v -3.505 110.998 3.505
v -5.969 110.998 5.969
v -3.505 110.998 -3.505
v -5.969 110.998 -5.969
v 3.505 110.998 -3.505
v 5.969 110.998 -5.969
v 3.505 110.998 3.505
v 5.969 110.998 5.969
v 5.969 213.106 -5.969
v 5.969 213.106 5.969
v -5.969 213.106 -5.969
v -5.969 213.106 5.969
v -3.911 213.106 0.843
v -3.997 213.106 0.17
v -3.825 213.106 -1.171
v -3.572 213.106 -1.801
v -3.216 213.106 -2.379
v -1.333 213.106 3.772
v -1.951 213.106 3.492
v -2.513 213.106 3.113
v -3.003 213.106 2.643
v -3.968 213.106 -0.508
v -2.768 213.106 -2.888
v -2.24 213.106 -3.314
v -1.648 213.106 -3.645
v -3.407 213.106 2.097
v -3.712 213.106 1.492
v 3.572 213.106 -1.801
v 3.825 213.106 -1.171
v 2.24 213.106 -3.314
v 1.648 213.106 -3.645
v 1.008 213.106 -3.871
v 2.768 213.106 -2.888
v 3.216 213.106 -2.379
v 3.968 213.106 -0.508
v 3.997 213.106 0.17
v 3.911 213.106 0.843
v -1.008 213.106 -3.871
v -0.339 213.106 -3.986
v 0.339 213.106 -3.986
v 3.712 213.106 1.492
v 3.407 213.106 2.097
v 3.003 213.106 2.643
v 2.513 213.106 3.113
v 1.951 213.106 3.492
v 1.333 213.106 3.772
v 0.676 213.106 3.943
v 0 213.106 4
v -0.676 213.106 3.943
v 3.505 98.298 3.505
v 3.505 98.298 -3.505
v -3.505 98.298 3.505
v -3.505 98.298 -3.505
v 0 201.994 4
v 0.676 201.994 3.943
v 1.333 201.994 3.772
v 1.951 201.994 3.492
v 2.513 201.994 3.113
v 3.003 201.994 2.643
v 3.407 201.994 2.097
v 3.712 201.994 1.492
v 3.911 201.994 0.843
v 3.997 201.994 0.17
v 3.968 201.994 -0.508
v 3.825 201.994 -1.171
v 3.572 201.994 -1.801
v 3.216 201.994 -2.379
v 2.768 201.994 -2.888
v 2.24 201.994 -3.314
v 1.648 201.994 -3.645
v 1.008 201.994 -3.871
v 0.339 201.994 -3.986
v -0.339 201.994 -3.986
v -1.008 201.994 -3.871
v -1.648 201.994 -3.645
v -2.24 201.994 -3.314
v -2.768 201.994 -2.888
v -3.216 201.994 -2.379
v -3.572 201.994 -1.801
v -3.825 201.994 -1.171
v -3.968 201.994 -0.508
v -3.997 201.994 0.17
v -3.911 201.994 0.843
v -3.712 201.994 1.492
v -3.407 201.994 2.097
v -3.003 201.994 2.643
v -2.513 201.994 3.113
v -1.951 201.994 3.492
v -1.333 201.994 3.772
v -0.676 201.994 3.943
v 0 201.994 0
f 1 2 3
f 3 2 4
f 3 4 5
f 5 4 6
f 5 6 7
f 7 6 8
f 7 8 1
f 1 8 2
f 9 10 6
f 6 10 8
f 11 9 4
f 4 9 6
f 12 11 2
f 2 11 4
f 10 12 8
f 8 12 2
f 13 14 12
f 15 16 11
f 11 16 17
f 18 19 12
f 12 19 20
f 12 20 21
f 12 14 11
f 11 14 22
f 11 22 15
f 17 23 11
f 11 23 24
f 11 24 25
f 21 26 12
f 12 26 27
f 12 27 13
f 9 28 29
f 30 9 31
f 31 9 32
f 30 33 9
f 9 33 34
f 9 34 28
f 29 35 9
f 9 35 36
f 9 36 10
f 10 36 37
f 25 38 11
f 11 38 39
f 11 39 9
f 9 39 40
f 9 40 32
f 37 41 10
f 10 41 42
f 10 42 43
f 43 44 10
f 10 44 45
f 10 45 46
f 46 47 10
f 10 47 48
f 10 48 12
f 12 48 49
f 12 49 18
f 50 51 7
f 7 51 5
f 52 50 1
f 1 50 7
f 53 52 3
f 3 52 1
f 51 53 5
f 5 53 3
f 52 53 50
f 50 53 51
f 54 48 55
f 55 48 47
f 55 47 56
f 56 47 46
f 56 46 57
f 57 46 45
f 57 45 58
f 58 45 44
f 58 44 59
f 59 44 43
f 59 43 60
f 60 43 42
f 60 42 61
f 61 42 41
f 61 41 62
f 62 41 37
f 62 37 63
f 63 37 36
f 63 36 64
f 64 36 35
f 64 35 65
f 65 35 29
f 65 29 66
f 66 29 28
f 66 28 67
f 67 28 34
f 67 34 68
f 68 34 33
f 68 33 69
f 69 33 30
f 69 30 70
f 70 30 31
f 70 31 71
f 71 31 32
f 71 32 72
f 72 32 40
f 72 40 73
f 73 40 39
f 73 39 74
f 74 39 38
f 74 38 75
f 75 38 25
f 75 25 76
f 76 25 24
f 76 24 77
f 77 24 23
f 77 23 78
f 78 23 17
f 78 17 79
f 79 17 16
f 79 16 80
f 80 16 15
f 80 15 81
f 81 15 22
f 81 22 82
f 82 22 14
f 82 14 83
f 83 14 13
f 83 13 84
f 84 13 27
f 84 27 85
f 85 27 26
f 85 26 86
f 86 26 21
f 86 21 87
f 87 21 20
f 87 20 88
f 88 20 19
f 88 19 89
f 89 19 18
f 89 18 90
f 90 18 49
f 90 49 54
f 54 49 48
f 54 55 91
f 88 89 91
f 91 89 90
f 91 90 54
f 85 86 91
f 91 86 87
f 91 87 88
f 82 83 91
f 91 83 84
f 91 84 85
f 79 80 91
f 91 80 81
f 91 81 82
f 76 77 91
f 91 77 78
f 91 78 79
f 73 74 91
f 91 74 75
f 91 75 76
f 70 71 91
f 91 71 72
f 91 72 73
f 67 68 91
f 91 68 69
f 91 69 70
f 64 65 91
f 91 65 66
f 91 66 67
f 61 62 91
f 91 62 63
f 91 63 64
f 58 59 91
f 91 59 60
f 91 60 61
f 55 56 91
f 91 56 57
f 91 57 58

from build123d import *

# Parameters (mm, degrees)
SKETCH1_W           = 11.938
SKETCH1_H           = 11.938
BOSS_EXTRUDE1_DEPTH = 213.106
SKETCH3_R           = 3.68046
BOSS_EXTRUDE3_DEPTH = 28.575
SKETCH5_R           = 9.137508411
CUT_EXTRUDE1_DEPTH  = 139.573
SKETCH6_W           = 7.0104
SKETCH6_H           = 7.0104
BOSS_EXTRUDE5_DEPTH = 12.7
SKETCH2_R           = 4.0005
CUT_EXTRUDE2_DEPTH  = 11.1125


with BuildPart() as part:
    # Sketch1 → Boss-Extrude1 (new body)
    with BuildSketch(Plane(origin=(0, 0, 0), x_dir=(1, 0, 0), z_dir=(0, 1, 0))):
        Rectangle(SKETCH1_W, SKETCH1_H)
    extrude(amount=BOSS_EXTRUDE1_DEPTH)

    # Sketch3 → Boss-Extrude3 (add)
    with BuildSketch(Plane(origin=(0, 0, 0), x_dir=(-1, 0, 0), z_dir=(0, -1, 0))):
        Circle(SKETCH3_R)
    extrude(amount=BOSS_EXTRUDE3_DEPTH)

    # Sketch5 → Cut-Extrude1 (cut)
    with BuildSketch(Plane(origin=(0, -28.575, 0), x_dir=(-1, 0, 0), z_dir=(0, -1, 0))):
        Circle(SKETCH5_R)
    extrude(amount=-CUT_EXTRUDE1_DEPTH, mode=Mode.SUBTRACT)

    # Sketch6 → Boss-Extrude5 (add)
    with BuildSketch(Plane(origin=(0, 110.998, 0), x_dir=(-1, 0, 0), z_dir=(0, -1, 0))):
        Rectangle(SKETCH6_W, SKETCH6_H)
    extrude(amount=BOSS_EXTRUDE5_DEPTH)

    # Sketch2 → Cut-Extrude2 (cut)
    with BuildSketch(Plane(origin=(0, 213.106, 0), x_dir=(1, 0, 0), z_dir=(0, 1, 0))):
        Circle(SKETCH2_R)
    extrude(amount=-CUT_EXTRUDE2_DEPTH, mode=Mode.SUBTRACT)


solid = part.part
